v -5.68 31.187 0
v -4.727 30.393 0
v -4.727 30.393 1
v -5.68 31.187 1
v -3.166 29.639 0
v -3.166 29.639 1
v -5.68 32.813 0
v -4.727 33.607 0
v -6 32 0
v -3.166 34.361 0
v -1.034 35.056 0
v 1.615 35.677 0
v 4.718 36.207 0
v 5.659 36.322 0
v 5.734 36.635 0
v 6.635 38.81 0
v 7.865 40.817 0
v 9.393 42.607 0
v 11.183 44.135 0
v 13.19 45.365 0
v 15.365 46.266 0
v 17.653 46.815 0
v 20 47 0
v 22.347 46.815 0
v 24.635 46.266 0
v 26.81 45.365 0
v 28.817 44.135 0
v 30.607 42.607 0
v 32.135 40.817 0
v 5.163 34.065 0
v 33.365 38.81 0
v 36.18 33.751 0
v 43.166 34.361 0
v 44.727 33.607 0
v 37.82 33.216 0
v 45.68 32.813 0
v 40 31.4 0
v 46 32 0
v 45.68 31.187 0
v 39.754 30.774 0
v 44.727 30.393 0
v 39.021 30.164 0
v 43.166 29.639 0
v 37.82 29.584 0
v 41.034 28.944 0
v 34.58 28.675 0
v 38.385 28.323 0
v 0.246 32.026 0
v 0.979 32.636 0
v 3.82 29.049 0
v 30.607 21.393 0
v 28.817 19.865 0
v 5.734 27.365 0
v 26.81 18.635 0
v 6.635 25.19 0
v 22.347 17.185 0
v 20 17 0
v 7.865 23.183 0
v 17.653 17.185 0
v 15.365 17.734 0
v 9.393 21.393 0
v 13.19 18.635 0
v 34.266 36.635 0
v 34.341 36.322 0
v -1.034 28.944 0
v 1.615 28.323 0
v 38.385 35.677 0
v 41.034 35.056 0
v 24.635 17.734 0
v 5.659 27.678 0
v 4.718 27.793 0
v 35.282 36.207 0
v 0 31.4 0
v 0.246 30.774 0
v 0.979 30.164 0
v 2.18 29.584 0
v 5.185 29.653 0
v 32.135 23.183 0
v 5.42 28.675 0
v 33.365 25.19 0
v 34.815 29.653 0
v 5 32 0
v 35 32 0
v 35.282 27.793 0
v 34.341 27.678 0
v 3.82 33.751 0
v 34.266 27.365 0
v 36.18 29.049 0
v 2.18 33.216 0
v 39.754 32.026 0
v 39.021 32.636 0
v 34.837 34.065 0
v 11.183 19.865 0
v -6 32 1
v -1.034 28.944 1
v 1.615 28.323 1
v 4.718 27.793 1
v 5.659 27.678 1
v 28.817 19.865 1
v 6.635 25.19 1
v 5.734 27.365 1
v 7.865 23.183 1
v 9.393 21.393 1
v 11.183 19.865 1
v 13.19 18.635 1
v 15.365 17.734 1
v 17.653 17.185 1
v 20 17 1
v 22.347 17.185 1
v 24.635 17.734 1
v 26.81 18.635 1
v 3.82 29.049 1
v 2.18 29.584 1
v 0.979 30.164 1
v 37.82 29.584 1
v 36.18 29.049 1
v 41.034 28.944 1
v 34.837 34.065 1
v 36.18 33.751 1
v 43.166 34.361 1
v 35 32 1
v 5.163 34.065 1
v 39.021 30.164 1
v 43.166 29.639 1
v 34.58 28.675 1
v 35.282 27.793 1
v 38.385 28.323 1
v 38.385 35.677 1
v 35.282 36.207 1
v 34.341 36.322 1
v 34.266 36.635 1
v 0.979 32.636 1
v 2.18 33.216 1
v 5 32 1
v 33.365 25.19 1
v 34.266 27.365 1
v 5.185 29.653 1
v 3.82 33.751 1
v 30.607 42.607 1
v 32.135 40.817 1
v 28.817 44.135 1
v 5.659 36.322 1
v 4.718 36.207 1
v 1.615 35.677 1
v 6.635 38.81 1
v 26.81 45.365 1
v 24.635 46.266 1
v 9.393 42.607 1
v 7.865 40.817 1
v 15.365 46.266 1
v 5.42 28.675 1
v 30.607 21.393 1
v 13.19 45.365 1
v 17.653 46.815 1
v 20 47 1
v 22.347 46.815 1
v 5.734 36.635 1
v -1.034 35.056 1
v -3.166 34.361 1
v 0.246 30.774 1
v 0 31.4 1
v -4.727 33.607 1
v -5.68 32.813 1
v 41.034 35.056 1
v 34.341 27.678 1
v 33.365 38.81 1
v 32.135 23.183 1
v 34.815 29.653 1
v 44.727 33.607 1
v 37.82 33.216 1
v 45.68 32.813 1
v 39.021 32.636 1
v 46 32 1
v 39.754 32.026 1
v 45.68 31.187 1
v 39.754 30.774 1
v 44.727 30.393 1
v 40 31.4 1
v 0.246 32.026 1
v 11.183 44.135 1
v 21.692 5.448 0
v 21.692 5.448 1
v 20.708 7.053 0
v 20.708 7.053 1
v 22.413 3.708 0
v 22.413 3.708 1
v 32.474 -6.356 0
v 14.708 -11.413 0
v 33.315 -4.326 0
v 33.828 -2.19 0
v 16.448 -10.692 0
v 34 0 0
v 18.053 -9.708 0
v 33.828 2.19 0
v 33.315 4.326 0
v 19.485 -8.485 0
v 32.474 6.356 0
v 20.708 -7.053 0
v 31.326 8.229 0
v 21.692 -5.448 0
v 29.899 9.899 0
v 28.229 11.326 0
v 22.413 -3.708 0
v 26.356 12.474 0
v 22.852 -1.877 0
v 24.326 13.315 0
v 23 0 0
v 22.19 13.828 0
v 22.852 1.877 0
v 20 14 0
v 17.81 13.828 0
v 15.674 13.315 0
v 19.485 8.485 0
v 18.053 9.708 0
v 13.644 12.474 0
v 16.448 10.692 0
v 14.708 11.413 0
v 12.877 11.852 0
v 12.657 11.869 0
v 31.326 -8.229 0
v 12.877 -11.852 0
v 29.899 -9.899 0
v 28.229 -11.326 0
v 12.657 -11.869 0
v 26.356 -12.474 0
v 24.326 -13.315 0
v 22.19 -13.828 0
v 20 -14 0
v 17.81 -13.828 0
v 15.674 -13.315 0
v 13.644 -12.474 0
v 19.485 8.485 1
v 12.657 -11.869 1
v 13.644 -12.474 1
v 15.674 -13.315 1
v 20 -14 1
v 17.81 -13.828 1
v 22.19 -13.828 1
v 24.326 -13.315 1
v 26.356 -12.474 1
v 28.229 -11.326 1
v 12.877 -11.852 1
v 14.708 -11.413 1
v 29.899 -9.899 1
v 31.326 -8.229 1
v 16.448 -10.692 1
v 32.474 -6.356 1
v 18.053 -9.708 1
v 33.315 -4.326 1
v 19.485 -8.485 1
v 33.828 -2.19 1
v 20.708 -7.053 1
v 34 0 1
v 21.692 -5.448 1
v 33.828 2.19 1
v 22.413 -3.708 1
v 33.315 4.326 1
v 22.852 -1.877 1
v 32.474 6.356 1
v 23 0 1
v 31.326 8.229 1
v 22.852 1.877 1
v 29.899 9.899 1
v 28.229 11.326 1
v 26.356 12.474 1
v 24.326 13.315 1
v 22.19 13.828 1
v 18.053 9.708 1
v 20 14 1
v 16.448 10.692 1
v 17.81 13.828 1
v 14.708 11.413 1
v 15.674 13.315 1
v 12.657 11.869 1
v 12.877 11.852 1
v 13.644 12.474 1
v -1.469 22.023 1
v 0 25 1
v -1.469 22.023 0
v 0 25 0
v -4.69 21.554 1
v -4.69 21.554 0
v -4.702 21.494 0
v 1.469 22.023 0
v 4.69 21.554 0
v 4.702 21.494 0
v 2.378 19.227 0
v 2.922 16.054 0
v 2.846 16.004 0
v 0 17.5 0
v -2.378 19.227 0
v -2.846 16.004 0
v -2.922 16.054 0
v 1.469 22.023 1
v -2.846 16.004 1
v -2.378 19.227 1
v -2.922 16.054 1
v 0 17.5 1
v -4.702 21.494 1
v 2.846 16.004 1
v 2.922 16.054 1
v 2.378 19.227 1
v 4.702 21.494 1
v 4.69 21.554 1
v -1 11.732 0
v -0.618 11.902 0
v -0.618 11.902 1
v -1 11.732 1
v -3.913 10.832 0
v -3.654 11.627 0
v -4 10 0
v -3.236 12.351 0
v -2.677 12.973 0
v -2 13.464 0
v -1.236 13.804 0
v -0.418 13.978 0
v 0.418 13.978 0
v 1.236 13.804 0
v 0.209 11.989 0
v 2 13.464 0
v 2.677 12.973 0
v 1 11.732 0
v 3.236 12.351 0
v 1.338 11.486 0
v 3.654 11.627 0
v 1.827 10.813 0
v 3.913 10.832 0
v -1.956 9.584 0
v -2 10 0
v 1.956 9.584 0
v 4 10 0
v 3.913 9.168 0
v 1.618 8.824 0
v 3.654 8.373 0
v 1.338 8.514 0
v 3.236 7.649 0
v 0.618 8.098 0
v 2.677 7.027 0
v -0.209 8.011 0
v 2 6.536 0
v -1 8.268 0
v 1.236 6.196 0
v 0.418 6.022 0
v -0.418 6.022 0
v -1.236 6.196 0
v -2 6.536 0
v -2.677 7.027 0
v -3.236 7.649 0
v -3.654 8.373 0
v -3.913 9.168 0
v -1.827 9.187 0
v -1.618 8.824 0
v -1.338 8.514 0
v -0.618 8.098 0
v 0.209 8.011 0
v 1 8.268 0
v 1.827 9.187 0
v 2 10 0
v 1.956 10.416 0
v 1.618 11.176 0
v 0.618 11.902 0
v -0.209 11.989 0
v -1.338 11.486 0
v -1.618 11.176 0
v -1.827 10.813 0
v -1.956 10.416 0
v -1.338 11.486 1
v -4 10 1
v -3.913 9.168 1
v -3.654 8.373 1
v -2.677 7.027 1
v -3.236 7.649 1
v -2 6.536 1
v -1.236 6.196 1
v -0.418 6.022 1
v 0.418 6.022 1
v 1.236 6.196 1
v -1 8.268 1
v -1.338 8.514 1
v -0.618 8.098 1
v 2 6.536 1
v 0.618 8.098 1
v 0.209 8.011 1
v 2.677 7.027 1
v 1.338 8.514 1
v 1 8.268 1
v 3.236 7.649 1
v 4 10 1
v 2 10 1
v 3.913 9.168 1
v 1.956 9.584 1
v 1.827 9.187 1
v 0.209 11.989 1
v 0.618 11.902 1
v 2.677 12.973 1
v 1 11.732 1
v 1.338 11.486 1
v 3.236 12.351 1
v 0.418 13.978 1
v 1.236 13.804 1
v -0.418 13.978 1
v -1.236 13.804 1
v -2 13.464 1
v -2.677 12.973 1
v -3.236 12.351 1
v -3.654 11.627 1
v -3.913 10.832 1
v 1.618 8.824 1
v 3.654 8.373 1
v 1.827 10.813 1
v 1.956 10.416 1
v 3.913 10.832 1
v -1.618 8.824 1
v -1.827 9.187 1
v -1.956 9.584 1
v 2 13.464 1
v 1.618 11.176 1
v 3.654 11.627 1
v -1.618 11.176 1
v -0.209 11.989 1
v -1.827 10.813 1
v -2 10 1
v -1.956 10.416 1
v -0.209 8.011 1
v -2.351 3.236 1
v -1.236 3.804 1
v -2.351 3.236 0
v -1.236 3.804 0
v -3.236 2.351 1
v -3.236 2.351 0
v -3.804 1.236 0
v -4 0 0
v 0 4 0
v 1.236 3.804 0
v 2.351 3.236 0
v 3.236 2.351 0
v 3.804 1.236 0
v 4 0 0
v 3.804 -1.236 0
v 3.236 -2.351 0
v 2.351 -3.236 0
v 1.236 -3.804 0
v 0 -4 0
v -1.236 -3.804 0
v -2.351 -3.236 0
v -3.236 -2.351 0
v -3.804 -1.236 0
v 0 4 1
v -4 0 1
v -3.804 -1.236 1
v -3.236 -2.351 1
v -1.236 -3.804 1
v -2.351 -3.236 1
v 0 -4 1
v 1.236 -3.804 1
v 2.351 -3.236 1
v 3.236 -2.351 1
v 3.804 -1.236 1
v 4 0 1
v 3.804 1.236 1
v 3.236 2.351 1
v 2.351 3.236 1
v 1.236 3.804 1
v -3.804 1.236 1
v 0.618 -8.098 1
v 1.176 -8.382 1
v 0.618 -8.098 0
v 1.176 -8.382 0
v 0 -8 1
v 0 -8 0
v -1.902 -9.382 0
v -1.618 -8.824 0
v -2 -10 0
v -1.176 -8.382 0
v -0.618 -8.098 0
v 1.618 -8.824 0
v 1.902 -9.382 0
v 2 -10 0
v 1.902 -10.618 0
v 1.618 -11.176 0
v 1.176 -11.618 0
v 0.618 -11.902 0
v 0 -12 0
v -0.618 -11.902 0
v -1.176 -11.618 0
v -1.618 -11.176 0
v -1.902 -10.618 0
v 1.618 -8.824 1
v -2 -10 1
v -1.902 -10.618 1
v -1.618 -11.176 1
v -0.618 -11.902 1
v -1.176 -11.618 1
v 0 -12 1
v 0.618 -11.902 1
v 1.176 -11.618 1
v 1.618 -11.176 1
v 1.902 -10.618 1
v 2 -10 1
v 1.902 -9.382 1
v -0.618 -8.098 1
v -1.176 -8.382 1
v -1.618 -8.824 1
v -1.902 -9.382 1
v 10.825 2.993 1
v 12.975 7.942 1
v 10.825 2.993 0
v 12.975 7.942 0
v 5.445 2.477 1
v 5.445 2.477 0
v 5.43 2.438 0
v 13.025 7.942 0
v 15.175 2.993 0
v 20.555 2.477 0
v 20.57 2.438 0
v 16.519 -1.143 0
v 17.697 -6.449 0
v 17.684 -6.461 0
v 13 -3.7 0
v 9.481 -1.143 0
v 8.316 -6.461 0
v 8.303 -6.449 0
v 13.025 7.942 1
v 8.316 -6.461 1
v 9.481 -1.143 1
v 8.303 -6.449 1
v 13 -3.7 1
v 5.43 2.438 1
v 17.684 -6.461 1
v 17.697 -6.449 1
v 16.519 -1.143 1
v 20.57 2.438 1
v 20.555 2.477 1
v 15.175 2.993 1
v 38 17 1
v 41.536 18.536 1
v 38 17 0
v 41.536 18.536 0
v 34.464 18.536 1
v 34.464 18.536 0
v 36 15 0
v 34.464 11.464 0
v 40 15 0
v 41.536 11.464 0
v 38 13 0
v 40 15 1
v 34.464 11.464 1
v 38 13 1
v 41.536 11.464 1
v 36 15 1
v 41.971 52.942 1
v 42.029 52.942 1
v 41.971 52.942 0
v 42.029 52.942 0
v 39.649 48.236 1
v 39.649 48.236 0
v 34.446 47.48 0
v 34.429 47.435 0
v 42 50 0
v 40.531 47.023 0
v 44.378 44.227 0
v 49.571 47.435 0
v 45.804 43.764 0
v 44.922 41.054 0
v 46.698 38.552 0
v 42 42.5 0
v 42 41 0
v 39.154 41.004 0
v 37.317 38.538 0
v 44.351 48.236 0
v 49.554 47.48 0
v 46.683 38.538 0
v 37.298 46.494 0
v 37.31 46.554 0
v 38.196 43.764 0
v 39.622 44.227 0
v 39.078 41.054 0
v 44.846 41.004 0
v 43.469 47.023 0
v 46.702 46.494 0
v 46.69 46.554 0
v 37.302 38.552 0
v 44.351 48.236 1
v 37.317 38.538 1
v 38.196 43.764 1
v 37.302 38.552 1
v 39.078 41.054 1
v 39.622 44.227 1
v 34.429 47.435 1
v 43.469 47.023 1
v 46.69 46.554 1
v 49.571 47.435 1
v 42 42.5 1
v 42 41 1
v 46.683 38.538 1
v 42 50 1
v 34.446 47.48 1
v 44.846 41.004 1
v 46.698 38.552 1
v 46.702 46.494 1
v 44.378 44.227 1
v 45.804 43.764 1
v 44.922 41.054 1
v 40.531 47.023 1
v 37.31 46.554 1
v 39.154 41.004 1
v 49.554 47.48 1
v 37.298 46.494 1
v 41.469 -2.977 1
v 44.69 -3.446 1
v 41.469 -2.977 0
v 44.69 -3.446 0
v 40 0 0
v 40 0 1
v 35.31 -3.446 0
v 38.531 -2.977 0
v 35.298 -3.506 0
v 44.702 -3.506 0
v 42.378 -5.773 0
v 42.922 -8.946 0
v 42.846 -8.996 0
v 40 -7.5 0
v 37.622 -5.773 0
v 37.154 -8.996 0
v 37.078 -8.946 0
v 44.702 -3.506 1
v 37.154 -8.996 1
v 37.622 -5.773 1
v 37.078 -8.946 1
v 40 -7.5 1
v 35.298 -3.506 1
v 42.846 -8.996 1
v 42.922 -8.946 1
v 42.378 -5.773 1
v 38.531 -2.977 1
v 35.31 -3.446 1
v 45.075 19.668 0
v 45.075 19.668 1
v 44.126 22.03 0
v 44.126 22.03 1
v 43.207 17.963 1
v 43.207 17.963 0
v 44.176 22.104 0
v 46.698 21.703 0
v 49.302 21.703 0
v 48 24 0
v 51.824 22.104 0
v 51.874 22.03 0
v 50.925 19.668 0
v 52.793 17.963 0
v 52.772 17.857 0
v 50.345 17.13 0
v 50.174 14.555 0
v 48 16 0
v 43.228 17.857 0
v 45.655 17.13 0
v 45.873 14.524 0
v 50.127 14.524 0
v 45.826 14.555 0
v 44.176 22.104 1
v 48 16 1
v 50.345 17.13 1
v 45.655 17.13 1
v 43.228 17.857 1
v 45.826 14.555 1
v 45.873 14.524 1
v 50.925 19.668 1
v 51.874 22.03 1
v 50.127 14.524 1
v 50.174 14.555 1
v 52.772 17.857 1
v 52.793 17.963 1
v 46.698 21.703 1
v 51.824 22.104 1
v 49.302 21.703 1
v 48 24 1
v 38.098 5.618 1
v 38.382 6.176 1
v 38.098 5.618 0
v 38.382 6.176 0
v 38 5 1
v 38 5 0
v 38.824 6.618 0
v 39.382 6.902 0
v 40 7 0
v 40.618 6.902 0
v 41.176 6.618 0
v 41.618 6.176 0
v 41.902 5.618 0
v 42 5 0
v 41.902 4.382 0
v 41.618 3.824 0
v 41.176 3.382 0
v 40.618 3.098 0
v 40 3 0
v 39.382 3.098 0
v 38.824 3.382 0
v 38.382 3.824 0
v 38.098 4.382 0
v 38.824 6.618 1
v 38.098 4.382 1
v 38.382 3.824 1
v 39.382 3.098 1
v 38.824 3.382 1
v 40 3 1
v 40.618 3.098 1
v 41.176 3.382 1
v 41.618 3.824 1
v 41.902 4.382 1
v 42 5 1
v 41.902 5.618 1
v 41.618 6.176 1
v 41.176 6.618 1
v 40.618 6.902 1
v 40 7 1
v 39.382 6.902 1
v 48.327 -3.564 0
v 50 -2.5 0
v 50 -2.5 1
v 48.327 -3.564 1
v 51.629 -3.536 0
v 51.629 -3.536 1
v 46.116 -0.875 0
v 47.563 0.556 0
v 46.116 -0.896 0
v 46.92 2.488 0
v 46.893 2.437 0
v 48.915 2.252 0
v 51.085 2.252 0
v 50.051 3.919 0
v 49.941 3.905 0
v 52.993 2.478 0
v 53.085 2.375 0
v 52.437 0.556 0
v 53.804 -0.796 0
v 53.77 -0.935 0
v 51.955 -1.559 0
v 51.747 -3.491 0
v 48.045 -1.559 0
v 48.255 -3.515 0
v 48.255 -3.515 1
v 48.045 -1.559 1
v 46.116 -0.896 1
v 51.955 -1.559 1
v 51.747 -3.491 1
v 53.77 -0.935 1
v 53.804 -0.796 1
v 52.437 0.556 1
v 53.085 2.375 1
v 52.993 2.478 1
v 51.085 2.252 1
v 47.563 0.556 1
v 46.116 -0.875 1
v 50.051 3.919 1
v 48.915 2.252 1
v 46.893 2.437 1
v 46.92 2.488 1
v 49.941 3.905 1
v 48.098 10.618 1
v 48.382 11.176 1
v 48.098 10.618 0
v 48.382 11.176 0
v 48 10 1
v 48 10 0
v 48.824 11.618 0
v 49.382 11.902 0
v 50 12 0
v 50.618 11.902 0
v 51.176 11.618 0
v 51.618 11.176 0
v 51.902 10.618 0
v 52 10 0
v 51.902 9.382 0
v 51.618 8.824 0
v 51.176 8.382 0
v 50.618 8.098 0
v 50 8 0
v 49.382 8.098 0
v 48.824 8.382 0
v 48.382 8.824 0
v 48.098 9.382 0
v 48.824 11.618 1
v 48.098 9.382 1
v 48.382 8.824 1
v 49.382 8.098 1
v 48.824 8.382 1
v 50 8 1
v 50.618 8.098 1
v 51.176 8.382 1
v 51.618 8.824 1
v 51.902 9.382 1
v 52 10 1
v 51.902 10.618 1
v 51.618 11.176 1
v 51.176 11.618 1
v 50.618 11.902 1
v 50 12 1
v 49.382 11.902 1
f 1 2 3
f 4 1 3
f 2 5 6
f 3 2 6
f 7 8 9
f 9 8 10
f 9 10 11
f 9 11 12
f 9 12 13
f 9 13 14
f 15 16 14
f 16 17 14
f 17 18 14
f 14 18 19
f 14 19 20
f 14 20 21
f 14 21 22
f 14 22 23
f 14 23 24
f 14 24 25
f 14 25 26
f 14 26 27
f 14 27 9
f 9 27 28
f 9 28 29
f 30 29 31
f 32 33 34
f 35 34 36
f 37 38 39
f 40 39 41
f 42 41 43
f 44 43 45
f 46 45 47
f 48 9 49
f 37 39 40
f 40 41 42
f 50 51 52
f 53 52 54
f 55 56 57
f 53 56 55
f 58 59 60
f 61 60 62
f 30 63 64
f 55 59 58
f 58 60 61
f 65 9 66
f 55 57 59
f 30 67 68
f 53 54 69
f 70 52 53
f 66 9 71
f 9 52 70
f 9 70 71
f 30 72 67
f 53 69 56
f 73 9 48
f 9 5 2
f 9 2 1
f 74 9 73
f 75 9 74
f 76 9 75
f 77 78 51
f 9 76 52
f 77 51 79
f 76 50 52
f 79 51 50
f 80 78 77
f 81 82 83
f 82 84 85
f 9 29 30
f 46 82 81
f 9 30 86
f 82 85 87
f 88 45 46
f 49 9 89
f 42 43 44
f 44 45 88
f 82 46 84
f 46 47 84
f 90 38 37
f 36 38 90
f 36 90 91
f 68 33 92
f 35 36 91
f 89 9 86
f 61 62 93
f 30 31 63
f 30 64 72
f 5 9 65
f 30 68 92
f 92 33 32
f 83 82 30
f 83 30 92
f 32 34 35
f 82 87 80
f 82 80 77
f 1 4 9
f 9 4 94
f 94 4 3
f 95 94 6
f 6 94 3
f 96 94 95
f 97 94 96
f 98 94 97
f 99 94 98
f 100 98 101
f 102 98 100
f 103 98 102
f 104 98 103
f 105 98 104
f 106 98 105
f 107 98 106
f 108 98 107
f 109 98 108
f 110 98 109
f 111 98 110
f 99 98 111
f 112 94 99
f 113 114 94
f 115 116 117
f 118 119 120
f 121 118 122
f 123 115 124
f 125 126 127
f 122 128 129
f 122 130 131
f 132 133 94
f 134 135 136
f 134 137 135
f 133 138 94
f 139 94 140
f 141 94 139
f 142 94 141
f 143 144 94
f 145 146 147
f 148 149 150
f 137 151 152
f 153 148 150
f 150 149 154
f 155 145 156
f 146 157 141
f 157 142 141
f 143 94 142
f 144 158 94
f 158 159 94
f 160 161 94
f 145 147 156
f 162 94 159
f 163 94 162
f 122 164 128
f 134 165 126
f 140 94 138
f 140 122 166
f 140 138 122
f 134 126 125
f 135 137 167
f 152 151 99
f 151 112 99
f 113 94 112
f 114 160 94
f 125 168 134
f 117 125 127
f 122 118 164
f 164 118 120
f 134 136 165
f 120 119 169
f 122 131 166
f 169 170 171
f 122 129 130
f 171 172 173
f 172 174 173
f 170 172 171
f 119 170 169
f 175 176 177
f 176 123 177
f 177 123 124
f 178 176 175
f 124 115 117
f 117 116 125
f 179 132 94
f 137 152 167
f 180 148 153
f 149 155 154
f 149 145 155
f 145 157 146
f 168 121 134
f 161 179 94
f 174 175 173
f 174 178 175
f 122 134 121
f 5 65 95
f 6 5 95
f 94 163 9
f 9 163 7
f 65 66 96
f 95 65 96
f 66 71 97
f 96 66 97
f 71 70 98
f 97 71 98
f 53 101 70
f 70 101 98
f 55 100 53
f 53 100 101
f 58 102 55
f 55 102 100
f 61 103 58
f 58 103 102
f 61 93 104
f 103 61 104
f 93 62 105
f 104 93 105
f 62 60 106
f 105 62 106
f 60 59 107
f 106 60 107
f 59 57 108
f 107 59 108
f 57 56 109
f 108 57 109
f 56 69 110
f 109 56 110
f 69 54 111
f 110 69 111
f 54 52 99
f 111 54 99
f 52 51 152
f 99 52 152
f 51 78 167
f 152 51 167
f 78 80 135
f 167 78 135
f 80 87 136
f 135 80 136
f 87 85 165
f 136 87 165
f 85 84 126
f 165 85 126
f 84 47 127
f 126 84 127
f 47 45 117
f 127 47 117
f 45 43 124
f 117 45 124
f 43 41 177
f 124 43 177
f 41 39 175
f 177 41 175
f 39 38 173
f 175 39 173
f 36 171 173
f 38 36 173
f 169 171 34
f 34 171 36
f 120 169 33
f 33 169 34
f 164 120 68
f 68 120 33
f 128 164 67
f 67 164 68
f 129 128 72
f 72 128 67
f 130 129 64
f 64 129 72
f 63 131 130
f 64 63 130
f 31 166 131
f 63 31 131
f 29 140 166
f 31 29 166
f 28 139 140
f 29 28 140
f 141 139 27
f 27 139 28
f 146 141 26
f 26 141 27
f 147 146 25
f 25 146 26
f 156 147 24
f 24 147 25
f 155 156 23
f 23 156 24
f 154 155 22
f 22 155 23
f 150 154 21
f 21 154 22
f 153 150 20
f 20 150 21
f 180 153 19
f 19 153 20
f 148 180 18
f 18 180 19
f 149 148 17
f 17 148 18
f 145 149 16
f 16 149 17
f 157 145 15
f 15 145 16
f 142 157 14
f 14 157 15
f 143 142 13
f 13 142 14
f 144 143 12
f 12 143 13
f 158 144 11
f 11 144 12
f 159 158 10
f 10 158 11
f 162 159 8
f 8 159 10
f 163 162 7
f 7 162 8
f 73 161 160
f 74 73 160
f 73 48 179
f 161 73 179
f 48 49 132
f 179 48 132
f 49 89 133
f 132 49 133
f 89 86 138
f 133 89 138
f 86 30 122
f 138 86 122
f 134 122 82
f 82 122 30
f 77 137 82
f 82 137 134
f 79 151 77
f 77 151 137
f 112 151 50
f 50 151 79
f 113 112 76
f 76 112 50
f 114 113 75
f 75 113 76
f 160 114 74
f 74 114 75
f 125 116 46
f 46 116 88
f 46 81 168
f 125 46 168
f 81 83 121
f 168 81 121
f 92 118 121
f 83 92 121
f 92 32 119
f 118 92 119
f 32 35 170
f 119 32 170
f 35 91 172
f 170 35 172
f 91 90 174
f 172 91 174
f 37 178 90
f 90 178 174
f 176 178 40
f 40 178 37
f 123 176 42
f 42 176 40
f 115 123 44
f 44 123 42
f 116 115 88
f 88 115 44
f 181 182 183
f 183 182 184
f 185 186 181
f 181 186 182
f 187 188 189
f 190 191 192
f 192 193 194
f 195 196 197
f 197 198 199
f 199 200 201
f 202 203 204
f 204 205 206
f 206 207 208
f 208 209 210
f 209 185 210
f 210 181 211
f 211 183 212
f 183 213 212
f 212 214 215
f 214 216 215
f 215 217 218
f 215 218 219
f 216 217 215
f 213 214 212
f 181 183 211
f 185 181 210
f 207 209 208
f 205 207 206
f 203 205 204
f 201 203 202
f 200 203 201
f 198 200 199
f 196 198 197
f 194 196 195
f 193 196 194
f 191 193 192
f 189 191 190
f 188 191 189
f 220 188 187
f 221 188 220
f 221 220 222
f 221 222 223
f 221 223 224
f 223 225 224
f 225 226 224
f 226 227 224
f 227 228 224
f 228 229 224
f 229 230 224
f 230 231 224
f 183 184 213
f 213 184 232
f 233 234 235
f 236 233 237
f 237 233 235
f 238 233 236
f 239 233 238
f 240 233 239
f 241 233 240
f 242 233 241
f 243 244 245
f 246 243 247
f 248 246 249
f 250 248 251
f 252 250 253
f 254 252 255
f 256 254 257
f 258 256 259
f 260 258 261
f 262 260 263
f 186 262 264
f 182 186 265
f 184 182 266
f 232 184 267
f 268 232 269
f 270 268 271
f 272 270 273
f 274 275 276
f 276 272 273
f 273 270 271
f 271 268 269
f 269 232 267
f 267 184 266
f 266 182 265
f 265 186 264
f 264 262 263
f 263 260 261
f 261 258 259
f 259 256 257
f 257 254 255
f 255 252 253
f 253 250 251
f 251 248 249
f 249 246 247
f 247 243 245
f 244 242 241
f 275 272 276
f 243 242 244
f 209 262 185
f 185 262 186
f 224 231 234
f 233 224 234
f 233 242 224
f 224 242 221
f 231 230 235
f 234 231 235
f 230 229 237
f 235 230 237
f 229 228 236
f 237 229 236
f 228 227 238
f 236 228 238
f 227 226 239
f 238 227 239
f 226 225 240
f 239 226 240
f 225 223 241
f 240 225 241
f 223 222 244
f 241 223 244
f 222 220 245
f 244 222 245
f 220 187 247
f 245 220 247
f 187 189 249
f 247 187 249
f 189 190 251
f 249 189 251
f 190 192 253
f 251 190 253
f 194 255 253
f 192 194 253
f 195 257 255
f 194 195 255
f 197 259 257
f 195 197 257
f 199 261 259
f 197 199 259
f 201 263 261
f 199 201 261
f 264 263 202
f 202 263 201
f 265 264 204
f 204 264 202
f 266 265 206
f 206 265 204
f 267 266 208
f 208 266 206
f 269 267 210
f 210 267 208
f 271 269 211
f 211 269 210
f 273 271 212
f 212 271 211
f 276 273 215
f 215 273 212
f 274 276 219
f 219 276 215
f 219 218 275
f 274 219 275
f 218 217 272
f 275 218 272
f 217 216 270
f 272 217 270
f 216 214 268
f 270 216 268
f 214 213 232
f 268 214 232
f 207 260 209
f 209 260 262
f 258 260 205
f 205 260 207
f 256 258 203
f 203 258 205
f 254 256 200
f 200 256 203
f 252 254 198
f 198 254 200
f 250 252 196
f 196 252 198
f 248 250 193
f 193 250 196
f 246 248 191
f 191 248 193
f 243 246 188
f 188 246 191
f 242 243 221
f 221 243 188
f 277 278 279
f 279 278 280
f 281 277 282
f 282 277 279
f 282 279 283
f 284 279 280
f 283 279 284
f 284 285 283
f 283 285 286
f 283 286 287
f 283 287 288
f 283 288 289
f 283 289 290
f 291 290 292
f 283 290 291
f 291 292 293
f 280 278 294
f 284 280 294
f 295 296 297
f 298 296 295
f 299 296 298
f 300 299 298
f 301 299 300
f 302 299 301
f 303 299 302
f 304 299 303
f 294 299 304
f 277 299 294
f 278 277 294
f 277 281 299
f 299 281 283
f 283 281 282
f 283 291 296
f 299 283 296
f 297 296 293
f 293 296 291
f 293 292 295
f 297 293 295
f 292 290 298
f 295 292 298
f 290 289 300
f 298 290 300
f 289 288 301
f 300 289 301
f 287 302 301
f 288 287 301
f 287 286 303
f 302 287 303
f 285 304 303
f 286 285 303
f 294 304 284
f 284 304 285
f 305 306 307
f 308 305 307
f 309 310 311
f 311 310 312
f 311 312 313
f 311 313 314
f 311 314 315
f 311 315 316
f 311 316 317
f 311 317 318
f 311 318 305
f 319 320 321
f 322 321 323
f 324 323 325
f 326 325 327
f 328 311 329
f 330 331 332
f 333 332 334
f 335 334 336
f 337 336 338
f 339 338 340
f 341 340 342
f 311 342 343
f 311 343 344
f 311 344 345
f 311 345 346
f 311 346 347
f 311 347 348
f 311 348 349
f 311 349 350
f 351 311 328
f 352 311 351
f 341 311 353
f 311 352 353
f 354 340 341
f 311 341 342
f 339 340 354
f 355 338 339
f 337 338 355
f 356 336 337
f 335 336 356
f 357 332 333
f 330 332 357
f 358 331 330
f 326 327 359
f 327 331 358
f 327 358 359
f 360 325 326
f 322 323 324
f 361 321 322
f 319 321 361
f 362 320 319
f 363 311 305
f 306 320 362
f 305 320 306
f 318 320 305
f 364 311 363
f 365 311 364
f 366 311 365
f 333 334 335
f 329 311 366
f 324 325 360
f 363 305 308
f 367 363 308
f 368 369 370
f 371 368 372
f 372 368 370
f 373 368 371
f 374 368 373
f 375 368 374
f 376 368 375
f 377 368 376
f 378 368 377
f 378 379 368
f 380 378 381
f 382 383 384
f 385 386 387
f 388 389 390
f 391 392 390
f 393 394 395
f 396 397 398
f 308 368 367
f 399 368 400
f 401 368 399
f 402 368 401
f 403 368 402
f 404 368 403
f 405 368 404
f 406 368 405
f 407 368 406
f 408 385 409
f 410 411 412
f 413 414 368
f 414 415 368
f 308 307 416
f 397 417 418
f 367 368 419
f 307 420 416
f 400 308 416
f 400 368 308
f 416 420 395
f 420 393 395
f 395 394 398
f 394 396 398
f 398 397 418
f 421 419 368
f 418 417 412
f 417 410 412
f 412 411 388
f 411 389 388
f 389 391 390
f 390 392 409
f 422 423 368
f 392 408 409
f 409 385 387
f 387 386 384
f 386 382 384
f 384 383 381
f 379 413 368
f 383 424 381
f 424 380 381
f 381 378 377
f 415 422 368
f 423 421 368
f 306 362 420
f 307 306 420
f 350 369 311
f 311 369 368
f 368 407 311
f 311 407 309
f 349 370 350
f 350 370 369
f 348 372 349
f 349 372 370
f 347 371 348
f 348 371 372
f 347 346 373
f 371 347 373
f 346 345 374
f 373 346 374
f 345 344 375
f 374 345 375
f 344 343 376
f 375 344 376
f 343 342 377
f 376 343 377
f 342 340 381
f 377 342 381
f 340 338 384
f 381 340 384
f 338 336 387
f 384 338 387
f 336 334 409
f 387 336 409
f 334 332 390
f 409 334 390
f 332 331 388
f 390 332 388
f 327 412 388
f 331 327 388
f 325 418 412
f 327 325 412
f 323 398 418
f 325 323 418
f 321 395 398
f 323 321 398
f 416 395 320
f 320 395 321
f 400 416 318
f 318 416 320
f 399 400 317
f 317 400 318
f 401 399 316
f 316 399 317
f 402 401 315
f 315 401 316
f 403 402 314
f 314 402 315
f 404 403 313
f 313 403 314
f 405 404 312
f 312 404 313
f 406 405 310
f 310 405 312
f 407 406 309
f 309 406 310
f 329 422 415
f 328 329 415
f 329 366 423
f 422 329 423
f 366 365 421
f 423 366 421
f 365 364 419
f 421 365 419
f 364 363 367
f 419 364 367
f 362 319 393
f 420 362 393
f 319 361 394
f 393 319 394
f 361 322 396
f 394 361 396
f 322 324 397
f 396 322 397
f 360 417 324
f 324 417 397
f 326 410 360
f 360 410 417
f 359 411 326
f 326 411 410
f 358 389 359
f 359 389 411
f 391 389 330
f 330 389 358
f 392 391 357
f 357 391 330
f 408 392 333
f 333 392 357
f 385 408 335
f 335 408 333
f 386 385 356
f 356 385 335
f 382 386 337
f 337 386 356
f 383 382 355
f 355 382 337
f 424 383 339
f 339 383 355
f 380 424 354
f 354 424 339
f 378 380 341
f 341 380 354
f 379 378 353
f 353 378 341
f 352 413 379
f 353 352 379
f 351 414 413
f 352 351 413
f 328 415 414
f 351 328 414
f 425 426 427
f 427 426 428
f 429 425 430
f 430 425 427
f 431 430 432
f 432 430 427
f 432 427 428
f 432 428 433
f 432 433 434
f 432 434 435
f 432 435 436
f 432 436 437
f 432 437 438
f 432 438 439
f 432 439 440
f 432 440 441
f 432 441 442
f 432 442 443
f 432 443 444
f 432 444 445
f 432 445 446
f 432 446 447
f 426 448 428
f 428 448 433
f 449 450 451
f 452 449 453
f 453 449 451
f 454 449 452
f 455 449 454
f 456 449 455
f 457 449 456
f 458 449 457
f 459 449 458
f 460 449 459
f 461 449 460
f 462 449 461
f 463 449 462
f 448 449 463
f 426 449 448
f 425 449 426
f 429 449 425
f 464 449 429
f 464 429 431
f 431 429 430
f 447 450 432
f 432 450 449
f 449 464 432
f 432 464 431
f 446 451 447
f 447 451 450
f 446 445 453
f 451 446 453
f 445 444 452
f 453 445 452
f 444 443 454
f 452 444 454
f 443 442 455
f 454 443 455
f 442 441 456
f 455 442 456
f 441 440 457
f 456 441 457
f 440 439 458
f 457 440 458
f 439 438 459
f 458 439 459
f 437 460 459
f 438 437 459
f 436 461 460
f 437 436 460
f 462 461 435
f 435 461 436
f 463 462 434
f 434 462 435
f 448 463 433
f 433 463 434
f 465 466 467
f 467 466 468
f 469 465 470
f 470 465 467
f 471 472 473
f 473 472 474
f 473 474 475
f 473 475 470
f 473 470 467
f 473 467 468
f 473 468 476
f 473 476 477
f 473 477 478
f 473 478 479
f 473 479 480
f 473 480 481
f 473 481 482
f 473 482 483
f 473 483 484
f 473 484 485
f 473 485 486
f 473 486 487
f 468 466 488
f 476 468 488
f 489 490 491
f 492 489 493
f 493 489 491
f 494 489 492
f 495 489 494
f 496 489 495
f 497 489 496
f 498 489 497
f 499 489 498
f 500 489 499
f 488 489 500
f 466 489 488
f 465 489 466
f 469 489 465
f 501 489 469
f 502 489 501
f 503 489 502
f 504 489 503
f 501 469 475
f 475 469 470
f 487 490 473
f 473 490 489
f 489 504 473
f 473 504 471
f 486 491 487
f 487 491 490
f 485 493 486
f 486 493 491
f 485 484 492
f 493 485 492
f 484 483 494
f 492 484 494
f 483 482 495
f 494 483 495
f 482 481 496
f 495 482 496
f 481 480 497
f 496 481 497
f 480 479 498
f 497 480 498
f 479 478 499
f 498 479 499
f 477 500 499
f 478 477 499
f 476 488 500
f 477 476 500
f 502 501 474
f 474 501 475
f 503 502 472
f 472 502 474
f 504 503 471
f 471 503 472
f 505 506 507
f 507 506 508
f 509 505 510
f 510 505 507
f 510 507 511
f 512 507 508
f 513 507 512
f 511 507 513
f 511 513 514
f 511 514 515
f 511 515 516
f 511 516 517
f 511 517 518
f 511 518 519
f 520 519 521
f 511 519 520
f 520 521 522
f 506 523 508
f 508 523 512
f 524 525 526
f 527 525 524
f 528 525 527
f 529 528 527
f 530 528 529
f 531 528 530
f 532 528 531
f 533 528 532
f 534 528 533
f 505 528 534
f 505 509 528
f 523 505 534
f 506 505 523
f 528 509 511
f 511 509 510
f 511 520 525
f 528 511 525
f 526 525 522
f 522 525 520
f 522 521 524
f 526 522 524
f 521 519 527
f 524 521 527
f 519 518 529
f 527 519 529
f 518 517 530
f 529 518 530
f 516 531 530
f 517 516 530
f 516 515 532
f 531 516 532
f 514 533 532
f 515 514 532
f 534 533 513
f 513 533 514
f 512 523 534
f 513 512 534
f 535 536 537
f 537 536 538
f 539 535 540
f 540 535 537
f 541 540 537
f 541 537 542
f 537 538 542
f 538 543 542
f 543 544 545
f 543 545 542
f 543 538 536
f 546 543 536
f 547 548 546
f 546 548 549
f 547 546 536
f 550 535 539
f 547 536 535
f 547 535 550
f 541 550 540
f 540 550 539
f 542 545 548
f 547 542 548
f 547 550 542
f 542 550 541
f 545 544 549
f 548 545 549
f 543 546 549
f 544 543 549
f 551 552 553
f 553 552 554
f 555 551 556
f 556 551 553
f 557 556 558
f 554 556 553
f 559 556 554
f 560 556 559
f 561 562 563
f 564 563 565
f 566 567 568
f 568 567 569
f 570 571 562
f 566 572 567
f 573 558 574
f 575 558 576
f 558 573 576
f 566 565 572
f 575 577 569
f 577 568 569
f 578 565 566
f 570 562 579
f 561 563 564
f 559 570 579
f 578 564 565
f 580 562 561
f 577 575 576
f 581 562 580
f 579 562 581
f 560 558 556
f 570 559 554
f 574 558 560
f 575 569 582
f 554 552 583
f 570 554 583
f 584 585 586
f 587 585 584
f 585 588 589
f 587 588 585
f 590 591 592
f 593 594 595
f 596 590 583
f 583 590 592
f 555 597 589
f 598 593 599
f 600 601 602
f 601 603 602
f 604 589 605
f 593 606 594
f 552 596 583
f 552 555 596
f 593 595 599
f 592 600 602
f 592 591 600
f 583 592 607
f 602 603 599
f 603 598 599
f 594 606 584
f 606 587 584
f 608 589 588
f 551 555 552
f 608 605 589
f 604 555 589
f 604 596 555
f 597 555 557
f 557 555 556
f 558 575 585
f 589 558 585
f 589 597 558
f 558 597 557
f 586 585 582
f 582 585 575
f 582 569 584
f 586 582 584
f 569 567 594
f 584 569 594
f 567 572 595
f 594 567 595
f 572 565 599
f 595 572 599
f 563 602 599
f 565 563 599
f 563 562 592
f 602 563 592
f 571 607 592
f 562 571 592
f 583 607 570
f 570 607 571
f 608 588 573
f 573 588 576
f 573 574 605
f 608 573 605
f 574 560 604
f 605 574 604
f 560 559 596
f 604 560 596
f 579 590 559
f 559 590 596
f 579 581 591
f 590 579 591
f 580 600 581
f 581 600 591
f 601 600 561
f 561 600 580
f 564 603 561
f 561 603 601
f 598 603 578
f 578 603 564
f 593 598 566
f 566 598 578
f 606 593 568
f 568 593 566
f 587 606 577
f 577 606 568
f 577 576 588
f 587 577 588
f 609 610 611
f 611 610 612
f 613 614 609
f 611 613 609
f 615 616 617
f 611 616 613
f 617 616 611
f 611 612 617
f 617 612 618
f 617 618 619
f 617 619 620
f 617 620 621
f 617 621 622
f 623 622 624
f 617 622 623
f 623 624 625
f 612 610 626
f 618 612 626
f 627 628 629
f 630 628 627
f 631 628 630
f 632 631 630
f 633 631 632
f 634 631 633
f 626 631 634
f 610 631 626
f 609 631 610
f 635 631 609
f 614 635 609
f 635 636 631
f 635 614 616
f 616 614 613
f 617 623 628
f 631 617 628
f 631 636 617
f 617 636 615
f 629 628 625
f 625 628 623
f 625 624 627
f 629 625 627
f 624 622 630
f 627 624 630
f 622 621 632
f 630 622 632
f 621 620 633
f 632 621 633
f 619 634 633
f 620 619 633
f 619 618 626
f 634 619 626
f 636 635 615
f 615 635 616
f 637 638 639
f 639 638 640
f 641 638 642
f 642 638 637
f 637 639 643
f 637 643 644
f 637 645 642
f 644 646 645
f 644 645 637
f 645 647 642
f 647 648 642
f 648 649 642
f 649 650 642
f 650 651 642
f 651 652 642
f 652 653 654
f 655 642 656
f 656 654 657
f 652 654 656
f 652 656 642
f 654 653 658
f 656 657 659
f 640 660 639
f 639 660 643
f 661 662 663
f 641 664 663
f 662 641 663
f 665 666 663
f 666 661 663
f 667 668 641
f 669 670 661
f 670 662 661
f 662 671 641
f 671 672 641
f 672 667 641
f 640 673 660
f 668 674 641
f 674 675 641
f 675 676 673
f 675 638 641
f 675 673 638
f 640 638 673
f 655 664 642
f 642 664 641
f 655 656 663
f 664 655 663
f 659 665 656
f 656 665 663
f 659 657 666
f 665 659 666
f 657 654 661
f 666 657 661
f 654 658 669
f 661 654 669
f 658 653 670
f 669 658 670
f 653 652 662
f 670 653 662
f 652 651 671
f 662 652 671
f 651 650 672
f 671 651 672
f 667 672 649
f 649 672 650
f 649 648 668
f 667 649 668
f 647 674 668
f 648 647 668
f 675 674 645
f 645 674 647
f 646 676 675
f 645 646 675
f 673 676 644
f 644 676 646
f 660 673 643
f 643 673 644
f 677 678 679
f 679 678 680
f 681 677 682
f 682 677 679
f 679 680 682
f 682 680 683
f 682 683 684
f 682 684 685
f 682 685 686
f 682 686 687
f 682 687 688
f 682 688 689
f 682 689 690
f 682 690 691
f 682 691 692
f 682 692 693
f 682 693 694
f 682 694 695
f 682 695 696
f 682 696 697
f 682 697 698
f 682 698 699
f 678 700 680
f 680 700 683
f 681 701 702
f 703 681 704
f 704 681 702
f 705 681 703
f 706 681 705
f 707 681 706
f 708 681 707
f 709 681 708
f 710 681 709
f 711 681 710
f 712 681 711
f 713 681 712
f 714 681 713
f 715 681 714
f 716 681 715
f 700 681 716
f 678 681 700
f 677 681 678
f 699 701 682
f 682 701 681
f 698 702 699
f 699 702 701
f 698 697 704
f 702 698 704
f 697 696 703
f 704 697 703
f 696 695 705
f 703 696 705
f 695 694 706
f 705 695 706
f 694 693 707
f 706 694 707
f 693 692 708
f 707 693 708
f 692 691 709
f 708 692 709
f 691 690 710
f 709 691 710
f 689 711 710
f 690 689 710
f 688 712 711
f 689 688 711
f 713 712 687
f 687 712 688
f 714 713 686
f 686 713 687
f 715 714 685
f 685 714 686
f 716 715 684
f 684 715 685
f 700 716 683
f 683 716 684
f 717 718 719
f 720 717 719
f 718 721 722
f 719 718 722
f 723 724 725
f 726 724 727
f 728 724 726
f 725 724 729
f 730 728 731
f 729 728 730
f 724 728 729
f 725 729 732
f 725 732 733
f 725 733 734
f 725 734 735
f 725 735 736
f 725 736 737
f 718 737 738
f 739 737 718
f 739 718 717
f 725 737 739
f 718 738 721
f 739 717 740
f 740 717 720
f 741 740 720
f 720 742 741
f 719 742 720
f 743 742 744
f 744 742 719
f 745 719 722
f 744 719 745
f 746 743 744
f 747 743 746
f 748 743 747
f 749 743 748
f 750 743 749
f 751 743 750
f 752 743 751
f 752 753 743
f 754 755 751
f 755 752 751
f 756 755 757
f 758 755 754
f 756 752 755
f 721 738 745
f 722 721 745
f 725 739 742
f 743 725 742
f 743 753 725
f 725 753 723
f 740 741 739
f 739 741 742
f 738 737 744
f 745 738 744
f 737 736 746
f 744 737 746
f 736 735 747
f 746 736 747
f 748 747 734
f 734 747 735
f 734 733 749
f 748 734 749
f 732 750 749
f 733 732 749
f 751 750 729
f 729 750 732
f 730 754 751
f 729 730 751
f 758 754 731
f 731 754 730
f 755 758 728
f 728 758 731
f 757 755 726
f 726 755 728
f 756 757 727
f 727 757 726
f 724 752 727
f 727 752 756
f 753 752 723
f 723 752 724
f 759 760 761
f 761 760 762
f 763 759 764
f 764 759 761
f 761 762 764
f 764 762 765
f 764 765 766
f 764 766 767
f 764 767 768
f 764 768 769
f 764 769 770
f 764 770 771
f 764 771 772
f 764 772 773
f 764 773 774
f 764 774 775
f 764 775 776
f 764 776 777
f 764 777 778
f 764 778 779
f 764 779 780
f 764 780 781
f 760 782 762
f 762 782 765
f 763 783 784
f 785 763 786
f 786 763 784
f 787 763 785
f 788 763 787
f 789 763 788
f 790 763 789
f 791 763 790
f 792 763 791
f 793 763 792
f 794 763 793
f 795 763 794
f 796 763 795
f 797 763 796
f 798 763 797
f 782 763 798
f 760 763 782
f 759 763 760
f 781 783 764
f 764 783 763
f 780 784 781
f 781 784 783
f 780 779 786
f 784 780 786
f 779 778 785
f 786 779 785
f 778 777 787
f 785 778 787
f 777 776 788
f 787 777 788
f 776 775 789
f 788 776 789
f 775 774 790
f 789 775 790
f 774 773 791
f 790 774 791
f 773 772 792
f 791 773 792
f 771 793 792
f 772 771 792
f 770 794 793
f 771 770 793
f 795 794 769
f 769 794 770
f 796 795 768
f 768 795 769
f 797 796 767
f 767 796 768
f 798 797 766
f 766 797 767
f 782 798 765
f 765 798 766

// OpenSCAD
linear_extrude(height=1) union()
{
  translate([20,  0])  moon(14, 12, $fn=40);

  translate([ 0,-10])  dot(2, $fn=20);
  translate([ 0,  0])  dot(4, $fn=20);
  translate([ 0, 10])  dot(4, 2, $fn=30);
  translate([40,  5])  dot(2, $fn=20);
  translate([50, 10])  dot(2, $fn=20);

  translate([13,  0])  star(8, 3.7);
  translate([ 0, 20])  star(5, 2.5);
  translate([48, 19])  star(5, 3, 7);
  translate([42, 45])  difference() { star(8, 4); star(5, 2.5); }
  translate([38, 15])  star(5, 2, 4);
  translate([40, -5])  star(5, 2.5);
  translate([50,  0])  star(4, 2.5, 7);

  translate([20, 32])  saturn(15, 26, 20, $fn=40);
}



//////////////////////////////////////////////////////////////////////
// star
//    radius1 -- outer radius
//    radius2 -- inner radius
//    arms    -- number of arms
module star(radius1, radius2, arms=5)
{
    arc=360/arms;
    harc=arc/2;
    xcood=radius1*sin(harc);
    ycood=radius1*cos(harc);

    difference()
    {
        circle(radius1);
        for(i=[0:(arms-1)])
        {
            //  weird -- if "i*arc+harc", arms=8 fails
            rotate(i*arc)
                polygon(points=[ [0, -radius2],
                                 [-xcood, -ycood],
                                 [0, -2*radius1], 
                                 [+xcood, -ycood] ],
                        paths=[0:3]);
        }
    }
}

//////////////////////////////////////////////////////////////////////
// simple dot/circle
//    radius -- outer radius
//    thick  -- thickness of circle (0 for filled)
//    $fn    -- smoothness of circle
module dot(radius, thick=0)
{
    difference()
    {
        circle(radius);
        if (thick > 0) circle(radius - thick);
    }
}

//////////////////////////////////////////////////////////////////////
// saturn (dot with ring)
//    radius -- outer radius of planet
//    ring1  -- outer radius of ring
//    ring2  -- inner radius of ring
//    $fn    -- smoothness of circle
module saturn(radius, ring1, ring2)
{
    union()
    {
        circle(radius);
        difference()
        {
            scale([1, 0.2]) circle(ring1);
            translate([0, -0.03*ring2]) scale([1, 0.2])
                circle(ring2);
        }
    }
}

//////////////////////////////////////////////////////////////////////
// "classic" moon shape
//    radius1 -- outer radius of circle
//    radius2 -- radius of cutout circle
//    skew    -- offset factor of cutout
//    $fn     -- smoothness of circles
module moon(radius1, radius2, skew=0.75)
{
    difference()
    {
        circle(radius1);
        translate([-radius2*skew,0]) circle(radius2);
    }
}
